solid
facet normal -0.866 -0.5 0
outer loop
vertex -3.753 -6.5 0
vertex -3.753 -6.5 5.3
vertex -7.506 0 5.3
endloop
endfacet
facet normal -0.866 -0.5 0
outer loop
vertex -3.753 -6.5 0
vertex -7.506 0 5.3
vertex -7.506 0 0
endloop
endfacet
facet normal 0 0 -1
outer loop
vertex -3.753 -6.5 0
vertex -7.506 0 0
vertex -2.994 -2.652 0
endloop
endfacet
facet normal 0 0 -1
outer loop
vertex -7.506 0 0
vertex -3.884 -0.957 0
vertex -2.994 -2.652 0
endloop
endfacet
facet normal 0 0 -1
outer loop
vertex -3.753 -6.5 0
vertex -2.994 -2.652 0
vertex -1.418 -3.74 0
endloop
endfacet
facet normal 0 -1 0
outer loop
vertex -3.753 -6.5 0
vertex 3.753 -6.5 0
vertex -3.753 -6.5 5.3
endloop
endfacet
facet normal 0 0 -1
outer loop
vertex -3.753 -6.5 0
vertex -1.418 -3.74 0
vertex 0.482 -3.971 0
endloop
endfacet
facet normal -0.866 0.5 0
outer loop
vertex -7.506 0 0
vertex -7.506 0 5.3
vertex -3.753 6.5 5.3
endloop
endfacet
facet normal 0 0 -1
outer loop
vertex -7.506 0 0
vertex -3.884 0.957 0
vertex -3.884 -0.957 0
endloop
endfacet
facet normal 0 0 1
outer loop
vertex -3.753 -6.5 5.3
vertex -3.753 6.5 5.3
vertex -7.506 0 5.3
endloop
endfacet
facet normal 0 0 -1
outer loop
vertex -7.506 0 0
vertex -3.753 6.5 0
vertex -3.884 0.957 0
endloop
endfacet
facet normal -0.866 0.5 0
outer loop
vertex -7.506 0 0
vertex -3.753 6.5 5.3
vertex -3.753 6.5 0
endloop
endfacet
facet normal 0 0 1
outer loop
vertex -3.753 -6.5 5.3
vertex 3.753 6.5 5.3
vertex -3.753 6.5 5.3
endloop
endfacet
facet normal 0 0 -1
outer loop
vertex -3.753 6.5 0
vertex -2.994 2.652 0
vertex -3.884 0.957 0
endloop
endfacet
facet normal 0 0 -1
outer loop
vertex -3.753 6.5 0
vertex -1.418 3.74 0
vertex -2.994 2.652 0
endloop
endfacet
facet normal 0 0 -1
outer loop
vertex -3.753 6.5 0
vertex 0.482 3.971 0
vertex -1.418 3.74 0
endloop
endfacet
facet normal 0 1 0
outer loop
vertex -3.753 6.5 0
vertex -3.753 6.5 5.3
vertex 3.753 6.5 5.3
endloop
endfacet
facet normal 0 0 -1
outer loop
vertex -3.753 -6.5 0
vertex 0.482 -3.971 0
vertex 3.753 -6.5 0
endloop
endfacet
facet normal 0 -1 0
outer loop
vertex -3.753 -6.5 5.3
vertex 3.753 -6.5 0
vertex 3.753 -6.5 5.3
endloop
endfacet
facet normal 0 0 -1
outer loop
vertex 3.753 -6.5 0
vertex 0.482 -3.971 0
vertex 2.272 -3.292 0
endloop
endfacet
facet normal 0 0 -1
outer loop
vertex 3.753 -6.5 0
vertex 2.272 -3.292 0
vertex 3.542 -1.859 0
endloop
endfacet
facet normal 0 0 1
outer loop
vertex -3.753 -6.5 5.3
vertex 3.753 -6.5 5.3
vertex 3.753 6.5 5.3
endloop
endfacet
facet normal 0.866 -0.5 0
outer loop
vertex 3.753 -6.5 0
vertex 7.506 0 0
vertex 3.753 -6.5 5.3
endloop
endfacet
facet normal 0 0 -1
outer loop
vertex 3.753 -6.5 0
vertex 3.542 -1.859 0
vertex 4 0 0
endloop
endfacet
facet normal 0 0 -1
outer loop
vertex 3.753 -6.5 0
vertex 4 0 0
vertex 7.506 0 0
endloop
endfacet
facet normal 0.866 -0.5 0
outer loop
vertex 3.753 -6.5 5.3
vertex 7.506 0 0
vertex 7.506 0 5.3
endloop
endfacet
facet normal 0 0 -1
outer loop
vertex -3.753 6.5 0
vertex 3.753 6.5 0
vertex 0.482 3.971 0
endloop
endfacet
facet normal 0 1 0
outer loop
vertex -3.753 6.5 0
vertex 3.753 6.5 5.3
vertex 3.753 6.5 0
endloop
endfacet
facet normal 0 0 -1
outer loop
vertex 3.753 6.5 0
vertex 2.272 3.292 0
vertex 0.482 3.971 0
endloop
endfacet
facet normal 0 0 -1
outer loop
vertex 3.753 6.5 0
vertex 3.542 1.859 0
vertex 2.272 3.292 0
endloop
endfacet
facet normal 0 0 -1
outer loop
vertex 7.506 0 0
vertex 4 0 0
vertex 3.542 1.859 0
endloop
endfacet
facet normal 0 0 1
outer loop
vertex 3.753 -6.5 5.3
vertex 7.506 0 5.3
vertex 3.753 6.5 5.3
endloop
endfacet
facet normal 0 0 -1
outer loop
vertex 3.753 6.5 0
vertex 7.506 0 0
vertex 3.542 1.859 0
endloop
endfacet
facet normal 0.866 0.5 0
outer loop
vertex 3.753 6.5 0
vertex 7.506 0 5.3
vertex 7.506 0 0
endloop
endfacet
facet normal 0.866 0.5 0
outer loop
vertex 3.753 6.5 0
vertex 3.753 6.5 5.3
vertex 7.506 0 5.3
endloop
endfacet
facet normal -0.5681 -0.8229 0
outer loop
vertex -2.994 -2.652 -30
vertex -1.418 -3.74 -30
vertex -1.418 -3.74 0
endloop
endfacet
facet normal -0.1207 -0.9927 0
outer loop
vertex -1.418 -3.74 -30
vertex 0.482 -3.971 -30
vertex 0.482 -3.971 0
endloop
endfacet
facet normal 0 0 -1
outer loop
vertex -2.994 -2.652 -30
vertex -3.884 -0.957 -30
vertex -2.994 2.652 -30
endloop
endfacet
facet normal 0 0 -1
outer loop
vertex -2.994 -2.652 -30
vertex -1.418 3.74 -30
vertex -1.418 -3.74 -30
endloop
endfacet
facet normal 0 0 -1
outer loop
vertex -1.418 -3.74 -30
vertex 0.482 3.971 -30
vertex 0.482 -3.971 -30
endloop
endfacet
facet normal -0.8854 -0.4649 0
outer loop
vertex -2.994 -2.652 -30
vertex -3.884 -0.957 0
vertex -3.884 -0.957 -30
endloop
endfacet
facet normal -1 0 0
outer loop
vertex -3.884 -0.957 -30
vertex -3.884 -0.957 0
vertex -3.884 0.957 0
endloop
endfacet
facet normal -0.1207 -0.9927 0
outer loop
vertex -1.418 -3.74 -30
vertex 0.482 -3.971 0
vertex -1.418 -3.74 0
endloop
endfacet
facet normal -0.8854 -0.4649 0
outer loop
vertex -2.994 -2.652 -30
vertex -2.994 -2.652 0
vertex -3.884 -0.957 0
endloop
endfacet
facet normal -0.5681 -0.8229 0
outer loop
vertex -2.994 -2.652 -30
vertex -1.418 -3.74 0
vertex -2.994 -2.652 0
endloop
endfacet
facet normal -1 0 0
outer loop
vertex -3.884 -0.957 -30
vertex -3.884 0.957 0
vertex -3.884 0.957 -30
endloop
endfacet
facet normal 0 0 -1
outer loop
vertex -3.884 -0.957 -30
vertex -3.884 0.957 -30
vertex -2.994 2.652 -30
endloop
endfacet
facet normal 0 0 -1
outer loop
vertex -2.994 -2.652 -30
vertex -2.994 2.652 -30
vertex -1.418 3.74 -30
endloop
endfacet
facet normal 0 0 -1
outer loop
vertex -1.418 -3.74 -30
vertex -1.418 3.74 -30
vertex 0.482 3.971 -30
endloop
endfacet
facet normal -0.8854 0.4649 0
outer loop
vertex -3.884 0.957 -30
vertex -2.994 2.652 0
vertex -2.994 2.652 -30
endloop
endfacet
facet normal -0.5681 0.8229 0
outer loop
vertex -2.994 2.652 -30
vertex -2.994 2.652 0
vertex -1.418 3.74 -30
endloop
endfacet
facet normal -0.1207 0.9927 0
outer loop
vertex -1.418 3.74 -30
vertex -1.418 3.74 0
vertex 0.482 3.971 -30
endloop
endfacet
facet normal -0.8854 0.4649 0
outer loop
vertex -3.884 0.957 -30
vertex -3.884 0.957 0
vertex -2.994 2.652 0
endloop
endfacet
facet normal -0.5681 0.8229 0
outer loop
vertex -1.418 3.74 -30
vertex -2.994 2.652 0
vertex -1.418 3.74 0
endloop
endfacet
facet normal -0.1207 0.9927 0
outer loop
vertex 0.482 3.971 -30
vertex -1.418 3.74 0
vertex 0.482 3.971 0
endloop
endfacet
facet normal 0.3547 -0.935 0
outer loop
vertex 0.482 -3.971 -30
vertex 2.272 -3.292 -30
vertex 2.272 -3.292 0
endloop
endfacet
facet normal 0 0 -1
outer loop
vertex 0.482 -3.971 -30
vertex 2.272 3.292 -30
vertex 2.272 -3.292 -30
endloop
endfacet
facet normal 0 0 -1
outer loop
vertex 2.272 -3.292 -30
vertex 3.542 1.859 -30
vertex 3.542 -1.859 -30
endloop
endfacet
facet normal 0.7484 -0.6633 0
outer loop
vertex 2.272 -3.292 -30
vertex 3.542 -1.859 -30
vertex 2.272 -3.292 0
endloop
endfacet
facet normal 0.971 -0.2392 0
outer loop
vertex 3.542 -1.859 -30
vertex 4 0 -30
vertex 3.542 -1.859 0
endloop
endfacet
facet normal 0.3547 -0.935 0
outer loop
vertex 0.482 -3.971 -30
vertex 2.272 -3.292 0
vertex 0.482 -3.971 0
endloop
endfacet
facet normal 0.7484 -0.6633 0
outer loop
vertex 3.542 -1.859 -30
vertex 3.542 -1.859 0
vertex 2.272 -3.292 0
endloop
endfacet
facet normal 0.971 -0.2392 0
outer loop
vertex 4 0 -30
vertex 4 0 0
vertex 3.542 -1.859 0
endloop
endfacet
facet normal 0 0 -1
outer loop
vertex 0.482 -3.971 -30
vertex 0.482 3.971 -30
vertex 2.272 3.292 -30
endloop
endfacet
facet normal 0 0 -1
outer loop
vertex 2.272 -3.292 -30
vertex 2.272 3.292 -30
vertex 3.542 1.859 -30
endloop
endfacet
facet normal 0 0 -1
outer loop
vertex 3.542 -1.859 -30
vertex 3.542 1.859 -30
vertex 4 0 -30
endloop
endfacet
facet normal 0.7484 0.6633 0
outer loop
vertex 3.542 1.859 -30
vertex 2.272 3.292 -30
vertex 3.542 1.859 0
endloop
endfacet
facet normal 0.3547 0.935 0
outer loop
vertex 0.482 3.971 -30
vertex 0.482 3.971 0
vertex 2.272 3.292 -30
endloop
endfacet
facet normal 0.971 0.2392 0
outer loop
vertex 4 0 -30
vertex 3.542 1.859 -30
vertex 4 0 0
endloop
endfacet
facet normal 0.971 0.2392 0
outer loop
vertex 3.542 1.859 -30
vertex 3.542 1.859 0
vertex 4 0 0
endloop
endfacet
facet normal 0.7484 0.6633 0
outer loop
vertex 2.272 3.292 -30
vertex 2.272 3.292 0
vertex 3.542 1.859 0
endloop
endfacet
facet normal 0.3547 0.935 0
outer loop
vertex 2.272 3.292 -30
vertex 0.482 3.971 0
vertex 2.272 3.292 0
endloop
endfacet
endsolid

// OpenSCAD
across_flats = 13;
head_height = 5.3;
shank_diameter = 8;
shank_length = 30;
hex_radius = across_flats / sqrt(3);

union() {
    // 六角頭部: 底面 z=0
    linear_extrude(height = head_height)
        circle(r = hex_radius, $fn = 6);

    // シャンク: z=-30 から z=0
    translate([0, 0, -shank_length])
        cylinder(d = shank_diameter, h = shank_length);
}
